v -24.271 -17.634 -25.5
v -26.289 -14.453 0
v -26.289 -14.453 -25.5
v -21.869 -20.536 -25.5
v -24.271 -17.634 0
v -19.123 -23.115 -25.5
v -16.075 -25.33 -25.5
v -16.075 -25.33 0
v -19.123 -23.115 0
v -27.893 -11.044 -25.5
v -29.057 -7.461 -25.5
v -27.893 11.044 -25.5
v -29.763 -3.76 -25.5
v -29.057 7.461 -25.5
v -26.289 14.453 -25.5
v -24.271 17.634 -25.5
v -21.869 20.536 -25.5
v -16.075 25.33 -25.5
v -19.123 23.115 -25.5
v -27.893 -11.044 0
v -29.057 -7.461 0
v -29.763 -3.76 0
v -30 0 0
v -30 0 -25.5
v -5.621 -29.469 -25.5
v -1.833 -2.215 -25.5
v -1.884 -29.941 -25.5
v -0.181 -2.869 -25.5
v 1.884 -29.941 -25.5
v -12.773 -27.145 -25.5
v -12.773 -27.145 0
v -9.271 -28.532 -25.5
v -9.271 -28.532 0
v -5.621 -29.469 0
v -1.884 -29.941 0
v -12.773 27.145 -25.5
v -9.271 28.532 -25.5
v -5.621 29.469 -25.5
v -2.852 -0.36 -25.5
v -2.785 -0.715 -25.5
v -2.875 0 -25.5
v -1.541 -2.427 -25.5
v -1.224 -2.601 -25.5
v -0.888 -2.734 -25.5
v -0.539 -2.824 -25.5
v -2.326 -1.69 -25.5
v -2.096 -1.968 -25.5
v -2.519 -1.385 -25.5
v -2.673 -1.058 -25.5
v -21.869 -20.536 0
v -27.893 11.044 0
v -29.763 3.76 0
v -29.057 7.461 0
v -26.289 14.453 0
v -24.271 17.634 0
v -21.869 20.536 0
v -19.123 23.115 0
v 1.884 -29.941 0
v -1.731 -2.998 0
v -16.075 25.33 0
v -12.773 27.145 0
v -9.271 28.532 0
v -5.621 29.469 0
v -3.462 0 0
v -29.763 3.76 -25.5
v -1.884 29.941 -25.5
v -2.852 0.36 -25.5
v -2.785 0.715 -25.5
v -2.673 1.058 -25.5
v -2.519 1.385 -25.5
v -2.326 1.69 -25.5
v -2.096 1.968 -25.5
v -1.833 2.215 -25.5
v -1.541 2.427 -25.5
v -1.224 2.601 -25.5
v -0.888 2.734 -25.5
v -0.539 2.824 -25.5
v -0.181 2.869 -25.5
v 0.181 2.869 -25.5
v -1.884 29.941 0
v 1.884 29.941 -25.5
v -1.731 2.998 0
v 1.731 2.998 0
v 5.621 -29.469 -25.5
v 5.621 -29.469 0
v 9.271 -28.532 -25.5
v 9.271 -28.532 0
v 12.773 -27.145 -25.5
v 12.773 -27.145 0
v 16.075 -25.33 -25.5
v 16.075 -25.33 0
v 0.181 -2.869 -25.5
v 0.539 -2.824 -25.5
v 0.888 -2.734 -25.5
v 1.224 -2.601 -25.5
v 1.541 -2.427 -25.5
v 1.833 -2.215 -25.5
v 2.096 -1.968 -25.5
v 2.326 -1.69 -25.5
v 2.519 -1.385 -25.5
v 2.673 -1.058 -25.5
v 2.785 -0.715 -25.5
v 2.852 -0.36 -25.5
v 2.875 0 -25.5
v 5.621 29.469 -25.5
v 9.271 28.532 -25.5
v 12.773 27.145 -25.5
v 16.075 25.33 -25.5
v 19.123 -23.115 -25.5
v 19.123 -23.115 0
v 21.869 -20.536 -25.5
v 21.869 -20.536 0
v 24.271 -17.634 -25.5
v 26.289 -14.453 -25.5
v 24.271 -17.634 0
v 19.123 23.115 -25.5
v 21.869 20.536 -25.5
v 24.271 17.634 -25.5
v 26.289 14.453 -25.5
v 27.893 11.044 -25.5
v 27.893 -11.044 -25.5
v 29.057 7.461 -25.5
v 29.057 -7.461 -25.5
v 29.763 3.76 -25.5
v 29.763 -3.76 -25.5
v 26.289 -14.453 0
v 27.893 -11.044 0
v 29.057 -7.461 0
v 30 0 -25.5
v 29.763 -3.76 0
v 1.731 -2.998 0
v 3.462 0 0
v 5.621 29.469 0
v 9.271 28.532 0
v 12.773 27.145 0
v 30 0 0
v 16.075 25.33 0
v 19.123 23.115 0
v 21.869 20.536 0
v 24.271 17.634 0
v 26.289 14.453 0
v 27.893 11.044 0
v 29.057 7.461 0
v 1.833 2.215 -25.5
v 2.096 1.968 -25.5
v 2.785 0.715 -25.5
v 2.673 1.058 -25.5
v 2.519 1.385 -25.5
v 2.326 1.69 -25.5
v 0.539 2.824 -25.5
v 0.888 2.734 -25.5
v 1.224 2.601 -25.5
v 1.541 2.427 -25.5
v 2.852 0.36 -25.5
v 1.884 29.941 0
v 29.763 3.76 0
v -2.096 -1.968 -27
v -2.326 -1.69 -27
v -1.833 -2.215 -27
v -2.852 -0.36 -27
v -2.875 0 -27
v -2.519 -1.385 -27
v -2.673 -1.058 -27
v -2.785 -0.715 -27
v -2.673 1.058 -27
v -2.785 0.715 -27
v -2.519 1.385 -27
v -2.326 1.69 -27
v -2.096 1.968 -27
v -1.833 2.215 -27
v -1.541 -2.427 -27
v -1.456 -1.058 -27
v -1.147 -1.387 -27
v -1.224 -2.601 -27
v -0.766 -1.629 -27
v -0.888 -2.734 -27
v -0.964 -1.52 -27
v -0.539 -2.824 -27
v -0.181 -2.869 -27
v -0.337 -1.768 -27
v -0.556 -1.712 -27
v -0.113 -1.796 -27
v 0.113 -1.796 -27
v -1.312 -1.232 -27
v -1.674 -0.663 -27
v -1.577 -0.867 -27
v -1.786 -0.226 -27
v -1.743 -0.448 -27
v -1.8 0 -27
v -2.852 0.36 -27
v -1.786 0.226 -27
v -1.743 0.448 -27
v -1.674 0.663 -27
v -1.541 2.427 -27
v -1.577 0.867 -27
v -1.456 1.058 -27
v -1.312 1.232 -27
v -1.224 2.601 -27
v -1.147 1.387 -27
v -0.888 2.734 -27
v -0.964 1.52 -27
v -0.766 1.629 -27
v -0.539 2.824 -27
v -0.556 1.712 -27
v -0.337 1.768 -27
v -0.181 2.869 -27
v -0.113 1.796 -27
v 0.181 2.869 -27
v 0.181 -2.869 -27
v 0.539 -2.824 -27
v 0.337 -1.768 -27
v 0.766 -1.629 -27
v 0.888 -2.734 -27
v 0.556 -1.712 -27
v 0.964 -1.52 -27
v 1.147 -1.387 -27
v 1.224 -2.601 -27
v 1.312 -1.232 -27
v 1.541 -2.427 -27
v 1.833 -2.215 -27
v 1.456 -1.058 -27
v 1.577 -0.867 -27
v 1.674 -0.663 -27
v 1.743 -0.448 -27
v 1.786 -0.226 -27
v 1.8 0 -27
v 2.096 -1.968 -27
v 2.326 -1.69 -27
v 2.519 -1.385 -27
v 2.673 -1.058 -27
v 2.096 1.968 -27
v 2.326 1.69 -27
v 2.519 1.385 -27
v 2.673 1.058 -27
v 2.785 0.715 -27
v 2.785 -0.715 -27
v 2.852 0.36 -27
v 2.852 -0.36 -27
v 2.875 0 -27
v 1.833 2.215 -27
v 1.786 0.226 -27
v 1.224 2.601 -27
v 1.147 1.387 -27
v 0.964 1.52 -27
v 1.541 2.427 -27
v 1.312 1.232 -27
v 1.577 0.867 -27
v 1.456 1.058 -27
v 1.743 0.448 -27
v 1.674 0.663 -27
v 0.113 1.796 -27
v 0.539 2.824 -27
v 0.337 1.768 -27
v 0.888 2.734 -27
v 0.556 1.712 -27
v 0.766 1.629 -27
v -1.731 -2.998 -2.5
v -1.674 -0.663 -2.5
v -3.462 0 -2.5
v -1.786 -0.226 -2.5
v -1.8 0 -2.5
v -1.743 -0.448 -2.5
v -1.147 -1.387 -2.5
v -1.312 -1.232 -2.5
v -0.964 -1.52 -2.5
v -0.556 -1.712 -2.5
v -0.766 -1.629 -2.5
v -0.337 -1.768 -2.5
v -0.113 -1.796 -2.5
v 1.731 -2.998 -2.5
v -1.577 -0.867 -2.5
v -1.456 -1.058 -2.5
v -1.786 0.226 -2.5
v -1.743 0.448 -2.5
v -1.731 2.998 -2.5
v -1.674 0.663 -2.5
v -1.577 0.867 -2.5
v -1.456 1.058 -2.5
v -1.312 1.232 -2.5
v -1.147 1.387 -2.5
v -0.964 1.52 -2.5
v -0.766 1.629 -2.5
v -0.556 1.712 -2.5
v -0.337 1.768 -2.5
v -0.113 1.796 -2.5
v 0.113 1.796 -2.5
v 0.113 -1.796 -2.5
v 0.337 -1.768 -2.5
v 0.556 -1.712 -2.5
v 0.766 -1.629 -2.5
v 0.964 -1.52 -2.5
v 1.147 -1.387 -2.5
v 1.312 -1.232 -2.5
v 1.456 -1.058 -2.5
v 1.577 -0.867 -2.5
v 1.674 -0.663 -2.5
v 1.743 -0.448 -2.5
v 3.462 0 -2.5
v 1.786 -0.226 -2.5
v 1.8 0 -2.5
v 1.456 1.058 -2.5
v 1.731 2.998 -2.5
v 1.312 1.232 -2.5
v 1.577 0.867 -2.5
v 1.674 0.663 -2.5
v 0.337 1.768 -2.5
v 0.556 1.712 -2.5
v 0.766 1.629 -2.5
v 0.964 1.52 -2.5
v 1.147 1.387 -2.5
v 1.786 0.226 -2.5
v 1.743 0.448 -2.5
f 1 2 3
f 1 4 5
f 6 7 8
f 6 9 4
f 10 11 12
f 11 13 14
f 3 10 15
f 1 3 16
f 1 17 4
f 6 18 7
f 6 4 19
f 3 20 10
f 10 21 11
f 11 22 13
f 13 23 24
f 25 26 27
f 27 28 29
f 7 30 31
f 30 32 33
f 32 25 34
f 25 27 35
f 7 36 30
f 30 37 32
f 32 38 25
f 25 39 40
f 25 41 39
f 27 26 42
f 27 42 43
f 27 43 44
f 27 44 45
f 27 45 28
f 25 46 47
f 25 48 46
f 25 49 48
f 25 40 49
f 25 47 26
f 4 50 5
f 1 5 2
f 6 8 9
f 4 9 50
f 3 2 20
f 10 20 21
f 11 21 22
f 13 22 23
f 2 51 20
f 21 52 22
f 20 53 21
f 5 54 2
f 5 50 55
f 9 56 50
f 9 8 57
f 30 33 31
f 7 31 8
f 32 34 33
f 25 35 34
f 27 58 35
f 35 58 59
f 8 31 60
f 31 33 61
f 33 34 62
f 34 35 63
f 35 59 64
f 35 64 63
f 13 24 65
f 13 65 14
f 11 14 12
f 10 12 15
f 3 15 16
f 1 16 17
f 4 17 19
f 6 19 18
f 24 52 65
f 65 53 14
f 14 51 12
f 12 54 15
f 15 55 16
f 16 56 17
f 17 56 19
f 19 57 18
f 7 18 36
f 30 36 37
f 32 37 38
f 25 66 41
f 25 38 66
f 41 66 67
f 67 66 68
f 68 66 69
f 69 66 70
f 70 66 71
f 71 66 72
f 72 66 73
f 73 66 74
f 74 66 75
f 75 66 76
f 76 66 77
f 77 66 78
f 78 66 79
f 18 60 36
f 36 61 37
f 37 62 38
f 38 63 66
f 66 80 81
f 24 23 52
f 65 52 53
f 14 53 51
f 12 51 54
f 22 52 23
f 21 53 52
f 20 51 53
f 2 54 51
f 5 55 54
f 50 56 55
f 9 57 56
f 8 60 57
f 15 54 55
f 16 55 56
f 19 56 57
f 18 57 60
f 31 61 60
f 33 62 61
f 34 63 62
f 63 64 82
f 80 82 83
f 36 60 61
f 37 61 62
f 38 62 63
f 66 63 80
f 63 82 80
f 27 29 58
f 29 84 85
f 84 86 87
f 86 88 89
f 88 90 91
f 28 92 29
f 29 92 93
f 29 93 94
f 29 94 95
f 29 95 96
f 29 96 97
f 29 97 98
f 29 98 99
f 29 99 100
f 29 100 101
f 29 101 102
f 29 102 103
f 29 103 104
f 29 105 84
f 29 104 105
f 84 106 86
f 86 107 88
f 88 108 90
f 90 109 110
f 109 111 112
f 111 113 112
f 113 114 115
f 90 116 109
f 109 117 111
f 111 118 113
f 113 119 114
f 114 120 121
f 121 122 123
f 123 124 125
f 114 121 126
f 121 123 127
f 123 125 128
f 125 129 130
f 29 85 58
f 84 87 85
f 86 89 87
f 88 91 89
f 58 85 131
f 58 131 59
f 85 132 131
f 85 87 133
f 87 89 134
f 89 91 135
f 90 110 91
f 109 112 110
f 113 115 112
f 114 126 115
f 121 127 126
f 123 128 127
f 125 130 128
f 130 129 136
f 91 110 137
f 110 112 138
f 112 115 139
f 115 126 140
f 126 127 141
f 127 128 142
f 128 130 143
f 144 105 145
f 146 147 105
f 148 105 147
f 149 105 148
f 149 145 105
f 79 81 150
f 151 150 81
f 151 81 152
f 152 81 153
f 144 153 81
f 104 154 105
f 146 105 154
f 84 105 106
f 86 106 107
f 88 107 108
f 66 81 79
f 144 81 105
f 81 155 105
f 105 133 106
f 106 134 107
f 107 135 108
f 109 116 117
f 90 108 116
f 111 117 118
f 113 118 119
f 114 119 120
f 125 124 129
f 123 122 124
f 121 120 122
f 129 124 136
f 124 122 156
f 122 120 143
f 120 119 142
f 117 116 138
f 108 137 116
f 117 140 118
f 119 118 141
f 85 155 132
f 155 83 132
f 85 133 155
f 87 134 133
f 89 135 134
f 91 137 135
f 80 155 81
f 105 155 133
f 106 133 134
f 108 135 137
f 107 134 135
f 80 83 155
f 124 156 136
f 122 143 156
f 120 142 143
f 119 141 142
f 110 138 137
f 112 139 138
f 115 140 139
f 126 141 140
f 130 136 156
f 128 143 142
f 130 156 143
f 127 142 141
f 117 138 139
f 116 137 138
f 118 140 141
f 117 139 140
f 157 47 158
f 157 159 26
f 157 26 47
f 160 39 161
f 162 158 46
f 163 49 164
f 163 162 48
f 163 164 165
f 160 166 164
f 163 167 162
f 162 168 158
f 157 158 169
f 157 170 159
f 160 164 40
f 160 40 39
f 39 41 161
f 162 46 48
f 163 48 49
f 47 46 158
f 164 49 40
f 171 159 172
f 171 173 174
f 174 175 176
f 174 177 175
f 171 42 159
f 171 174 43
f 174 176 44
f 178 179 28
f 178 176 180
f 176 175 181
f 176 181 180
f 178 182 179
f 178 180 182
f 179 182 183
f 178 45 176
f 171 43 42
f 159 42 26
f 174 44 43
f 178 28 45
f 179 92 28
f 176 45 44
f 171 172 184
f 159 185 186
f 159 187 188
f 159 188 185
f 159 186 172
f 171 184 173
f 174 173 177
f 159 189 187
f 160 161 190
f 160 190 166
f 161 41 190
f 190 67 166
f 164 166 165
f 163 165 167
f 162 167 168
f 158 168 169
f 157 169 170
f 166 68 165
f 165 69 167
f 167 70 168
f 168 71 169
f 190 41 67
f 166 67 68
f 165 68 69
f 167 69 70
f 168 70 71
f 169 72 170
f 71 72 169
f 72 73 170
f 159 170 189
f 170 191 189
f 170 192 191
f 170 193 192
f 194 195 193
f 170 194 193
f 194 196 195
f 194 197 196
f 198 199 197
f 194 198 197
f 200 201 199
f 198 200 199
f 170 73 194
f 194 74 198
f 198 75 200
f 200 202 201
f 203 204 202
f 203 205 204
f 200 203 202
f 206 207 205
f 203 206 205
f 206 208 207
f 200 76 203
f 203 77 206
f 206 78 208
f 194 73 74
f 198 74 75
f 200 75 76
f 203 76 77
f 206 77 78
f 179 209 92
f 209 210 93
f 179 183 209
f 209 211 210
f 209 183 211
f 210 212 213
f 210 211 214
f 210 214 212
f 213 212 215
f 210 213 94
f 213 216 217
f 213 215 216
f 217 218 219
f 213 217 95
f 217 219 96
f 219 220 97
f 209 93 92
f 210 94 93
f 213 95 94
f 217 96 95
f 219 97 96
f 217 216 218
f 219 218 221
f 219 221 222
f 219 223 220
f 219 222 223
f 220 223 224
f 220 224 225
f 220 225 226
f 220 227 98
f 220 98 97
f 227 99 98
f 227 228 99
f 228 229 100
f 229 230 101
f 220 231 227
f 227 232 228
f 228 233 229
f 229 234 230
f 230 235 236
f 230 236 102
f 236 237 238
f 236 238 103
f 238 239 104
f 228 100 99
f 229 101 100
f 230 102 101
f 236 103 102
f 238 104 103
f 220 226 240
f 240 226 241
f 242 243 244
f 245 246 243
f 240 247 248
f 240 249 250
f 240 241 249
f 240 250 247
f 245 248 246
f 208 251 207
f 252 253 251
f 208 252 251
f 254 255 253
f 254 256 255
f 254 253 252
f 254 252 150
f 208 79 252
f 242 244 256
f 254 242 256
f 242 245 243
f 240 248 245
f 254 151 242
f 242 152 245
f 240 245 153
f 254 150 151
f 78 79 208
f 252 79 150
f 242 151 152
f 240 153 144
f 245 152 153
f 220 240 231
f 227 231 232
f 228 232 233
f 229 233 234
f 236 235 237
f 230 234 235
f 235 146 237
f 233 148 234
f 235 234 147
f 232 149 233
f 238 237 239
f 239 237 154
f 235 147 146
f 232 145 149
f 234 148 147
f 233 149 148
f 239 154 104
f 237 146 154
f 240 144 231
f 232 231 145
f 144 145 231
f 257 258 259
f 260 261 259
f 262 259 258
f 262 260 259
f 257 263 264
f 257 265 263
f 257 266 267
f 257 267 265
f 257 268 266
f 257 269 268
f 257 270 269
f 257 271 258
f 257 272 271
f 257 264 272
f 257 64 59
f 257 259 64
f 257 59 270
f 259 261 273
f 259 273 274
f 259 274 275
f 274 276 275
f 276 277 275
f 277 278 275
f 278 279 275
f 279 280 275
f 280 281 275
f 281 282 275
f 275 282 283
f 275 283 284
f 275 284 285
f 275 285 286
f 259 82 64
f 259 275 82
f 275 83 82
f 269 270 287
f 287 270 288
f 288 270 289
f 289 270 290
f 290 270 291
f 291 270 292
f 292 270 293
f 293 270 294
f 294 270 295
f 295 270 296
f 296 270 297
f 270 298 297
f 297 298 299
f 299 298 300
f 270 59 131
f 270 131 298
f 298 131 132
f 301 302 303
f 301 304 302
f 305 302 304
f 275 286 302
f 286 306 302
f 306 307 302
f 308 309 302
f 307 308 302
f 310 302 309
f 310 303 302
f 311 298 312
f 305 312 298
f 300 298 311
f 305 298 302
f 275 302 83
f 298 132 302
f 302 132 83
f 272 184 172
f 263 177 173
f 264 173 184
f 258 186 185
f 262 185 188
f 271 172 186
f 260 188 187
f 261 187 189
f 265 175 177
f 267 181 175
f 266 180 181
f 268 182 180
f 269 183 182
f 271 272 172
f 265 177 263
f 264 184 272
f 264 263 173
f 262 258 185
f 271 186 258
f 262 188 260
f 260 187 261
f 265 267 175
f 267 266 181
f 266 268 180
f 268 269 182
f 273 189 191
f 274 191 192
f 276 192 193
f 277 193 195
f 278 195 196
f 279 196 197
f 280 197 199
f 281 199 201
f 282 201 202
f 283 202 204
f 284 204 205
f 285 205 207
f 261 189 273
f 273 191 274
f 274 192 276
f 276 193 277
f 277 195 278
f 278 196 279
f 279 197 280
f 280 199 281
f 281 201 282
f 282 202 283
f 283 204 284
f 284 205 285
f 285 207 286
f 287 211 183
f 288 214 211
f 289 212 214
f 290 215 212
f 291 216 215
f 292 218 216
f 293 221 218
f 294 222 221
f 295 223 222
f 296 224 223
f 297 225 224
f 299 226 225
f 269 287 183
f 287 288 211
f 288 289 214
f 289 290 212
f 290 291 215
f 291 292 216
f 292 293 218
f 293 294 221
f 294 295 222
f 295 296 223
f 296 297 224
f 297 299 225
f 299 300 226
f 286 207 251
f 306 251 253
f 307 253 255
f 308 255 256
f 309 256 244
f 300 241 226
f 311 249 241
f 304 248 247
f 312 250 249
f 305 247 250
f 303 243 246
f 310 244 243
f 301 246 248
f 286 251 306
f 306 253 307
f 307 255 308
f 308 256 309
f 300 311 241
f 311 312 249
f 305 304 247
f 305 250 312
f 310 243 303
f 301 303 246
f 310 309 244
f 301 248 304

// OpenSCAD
$fn = 50;


difference() {
	union() {
		translate(v = [0, 0, -25.5000000000]) {
			cylinder(h = 25.5000000000, r = 30.0000000000);
		}
		#translate(v = [0, 0, -27.0000000000]) {
			cylinder(h = 27, r = 2.8750000000);
		}
	}
	union() {
		translate(v = [0, 0, 0]) {
			rotate(a = [0, 0, 0]) {
				difference() {
					union() {
						translate(v = [0, 0, -2.5000000000]) {
							linear_extrude(height = 2.5000000000) {
								polygon(points = [[3.4620000000, 0.0000000000], [1.7310000000, 2.9981799479], [-1.7310000000, 2.9981799479], [-3.4620000000, 0.0000000000], [-1.7310000000, -2.9981799479], [1.7310000000, -2.9981799479]]);
							}
						}
					}
					union();
				}
			}
		}
		#translate(v = [0, 0, -100.0000000000]) {
			cylinder(h = 200, r = 1.8000000000);
		}
	}
}
